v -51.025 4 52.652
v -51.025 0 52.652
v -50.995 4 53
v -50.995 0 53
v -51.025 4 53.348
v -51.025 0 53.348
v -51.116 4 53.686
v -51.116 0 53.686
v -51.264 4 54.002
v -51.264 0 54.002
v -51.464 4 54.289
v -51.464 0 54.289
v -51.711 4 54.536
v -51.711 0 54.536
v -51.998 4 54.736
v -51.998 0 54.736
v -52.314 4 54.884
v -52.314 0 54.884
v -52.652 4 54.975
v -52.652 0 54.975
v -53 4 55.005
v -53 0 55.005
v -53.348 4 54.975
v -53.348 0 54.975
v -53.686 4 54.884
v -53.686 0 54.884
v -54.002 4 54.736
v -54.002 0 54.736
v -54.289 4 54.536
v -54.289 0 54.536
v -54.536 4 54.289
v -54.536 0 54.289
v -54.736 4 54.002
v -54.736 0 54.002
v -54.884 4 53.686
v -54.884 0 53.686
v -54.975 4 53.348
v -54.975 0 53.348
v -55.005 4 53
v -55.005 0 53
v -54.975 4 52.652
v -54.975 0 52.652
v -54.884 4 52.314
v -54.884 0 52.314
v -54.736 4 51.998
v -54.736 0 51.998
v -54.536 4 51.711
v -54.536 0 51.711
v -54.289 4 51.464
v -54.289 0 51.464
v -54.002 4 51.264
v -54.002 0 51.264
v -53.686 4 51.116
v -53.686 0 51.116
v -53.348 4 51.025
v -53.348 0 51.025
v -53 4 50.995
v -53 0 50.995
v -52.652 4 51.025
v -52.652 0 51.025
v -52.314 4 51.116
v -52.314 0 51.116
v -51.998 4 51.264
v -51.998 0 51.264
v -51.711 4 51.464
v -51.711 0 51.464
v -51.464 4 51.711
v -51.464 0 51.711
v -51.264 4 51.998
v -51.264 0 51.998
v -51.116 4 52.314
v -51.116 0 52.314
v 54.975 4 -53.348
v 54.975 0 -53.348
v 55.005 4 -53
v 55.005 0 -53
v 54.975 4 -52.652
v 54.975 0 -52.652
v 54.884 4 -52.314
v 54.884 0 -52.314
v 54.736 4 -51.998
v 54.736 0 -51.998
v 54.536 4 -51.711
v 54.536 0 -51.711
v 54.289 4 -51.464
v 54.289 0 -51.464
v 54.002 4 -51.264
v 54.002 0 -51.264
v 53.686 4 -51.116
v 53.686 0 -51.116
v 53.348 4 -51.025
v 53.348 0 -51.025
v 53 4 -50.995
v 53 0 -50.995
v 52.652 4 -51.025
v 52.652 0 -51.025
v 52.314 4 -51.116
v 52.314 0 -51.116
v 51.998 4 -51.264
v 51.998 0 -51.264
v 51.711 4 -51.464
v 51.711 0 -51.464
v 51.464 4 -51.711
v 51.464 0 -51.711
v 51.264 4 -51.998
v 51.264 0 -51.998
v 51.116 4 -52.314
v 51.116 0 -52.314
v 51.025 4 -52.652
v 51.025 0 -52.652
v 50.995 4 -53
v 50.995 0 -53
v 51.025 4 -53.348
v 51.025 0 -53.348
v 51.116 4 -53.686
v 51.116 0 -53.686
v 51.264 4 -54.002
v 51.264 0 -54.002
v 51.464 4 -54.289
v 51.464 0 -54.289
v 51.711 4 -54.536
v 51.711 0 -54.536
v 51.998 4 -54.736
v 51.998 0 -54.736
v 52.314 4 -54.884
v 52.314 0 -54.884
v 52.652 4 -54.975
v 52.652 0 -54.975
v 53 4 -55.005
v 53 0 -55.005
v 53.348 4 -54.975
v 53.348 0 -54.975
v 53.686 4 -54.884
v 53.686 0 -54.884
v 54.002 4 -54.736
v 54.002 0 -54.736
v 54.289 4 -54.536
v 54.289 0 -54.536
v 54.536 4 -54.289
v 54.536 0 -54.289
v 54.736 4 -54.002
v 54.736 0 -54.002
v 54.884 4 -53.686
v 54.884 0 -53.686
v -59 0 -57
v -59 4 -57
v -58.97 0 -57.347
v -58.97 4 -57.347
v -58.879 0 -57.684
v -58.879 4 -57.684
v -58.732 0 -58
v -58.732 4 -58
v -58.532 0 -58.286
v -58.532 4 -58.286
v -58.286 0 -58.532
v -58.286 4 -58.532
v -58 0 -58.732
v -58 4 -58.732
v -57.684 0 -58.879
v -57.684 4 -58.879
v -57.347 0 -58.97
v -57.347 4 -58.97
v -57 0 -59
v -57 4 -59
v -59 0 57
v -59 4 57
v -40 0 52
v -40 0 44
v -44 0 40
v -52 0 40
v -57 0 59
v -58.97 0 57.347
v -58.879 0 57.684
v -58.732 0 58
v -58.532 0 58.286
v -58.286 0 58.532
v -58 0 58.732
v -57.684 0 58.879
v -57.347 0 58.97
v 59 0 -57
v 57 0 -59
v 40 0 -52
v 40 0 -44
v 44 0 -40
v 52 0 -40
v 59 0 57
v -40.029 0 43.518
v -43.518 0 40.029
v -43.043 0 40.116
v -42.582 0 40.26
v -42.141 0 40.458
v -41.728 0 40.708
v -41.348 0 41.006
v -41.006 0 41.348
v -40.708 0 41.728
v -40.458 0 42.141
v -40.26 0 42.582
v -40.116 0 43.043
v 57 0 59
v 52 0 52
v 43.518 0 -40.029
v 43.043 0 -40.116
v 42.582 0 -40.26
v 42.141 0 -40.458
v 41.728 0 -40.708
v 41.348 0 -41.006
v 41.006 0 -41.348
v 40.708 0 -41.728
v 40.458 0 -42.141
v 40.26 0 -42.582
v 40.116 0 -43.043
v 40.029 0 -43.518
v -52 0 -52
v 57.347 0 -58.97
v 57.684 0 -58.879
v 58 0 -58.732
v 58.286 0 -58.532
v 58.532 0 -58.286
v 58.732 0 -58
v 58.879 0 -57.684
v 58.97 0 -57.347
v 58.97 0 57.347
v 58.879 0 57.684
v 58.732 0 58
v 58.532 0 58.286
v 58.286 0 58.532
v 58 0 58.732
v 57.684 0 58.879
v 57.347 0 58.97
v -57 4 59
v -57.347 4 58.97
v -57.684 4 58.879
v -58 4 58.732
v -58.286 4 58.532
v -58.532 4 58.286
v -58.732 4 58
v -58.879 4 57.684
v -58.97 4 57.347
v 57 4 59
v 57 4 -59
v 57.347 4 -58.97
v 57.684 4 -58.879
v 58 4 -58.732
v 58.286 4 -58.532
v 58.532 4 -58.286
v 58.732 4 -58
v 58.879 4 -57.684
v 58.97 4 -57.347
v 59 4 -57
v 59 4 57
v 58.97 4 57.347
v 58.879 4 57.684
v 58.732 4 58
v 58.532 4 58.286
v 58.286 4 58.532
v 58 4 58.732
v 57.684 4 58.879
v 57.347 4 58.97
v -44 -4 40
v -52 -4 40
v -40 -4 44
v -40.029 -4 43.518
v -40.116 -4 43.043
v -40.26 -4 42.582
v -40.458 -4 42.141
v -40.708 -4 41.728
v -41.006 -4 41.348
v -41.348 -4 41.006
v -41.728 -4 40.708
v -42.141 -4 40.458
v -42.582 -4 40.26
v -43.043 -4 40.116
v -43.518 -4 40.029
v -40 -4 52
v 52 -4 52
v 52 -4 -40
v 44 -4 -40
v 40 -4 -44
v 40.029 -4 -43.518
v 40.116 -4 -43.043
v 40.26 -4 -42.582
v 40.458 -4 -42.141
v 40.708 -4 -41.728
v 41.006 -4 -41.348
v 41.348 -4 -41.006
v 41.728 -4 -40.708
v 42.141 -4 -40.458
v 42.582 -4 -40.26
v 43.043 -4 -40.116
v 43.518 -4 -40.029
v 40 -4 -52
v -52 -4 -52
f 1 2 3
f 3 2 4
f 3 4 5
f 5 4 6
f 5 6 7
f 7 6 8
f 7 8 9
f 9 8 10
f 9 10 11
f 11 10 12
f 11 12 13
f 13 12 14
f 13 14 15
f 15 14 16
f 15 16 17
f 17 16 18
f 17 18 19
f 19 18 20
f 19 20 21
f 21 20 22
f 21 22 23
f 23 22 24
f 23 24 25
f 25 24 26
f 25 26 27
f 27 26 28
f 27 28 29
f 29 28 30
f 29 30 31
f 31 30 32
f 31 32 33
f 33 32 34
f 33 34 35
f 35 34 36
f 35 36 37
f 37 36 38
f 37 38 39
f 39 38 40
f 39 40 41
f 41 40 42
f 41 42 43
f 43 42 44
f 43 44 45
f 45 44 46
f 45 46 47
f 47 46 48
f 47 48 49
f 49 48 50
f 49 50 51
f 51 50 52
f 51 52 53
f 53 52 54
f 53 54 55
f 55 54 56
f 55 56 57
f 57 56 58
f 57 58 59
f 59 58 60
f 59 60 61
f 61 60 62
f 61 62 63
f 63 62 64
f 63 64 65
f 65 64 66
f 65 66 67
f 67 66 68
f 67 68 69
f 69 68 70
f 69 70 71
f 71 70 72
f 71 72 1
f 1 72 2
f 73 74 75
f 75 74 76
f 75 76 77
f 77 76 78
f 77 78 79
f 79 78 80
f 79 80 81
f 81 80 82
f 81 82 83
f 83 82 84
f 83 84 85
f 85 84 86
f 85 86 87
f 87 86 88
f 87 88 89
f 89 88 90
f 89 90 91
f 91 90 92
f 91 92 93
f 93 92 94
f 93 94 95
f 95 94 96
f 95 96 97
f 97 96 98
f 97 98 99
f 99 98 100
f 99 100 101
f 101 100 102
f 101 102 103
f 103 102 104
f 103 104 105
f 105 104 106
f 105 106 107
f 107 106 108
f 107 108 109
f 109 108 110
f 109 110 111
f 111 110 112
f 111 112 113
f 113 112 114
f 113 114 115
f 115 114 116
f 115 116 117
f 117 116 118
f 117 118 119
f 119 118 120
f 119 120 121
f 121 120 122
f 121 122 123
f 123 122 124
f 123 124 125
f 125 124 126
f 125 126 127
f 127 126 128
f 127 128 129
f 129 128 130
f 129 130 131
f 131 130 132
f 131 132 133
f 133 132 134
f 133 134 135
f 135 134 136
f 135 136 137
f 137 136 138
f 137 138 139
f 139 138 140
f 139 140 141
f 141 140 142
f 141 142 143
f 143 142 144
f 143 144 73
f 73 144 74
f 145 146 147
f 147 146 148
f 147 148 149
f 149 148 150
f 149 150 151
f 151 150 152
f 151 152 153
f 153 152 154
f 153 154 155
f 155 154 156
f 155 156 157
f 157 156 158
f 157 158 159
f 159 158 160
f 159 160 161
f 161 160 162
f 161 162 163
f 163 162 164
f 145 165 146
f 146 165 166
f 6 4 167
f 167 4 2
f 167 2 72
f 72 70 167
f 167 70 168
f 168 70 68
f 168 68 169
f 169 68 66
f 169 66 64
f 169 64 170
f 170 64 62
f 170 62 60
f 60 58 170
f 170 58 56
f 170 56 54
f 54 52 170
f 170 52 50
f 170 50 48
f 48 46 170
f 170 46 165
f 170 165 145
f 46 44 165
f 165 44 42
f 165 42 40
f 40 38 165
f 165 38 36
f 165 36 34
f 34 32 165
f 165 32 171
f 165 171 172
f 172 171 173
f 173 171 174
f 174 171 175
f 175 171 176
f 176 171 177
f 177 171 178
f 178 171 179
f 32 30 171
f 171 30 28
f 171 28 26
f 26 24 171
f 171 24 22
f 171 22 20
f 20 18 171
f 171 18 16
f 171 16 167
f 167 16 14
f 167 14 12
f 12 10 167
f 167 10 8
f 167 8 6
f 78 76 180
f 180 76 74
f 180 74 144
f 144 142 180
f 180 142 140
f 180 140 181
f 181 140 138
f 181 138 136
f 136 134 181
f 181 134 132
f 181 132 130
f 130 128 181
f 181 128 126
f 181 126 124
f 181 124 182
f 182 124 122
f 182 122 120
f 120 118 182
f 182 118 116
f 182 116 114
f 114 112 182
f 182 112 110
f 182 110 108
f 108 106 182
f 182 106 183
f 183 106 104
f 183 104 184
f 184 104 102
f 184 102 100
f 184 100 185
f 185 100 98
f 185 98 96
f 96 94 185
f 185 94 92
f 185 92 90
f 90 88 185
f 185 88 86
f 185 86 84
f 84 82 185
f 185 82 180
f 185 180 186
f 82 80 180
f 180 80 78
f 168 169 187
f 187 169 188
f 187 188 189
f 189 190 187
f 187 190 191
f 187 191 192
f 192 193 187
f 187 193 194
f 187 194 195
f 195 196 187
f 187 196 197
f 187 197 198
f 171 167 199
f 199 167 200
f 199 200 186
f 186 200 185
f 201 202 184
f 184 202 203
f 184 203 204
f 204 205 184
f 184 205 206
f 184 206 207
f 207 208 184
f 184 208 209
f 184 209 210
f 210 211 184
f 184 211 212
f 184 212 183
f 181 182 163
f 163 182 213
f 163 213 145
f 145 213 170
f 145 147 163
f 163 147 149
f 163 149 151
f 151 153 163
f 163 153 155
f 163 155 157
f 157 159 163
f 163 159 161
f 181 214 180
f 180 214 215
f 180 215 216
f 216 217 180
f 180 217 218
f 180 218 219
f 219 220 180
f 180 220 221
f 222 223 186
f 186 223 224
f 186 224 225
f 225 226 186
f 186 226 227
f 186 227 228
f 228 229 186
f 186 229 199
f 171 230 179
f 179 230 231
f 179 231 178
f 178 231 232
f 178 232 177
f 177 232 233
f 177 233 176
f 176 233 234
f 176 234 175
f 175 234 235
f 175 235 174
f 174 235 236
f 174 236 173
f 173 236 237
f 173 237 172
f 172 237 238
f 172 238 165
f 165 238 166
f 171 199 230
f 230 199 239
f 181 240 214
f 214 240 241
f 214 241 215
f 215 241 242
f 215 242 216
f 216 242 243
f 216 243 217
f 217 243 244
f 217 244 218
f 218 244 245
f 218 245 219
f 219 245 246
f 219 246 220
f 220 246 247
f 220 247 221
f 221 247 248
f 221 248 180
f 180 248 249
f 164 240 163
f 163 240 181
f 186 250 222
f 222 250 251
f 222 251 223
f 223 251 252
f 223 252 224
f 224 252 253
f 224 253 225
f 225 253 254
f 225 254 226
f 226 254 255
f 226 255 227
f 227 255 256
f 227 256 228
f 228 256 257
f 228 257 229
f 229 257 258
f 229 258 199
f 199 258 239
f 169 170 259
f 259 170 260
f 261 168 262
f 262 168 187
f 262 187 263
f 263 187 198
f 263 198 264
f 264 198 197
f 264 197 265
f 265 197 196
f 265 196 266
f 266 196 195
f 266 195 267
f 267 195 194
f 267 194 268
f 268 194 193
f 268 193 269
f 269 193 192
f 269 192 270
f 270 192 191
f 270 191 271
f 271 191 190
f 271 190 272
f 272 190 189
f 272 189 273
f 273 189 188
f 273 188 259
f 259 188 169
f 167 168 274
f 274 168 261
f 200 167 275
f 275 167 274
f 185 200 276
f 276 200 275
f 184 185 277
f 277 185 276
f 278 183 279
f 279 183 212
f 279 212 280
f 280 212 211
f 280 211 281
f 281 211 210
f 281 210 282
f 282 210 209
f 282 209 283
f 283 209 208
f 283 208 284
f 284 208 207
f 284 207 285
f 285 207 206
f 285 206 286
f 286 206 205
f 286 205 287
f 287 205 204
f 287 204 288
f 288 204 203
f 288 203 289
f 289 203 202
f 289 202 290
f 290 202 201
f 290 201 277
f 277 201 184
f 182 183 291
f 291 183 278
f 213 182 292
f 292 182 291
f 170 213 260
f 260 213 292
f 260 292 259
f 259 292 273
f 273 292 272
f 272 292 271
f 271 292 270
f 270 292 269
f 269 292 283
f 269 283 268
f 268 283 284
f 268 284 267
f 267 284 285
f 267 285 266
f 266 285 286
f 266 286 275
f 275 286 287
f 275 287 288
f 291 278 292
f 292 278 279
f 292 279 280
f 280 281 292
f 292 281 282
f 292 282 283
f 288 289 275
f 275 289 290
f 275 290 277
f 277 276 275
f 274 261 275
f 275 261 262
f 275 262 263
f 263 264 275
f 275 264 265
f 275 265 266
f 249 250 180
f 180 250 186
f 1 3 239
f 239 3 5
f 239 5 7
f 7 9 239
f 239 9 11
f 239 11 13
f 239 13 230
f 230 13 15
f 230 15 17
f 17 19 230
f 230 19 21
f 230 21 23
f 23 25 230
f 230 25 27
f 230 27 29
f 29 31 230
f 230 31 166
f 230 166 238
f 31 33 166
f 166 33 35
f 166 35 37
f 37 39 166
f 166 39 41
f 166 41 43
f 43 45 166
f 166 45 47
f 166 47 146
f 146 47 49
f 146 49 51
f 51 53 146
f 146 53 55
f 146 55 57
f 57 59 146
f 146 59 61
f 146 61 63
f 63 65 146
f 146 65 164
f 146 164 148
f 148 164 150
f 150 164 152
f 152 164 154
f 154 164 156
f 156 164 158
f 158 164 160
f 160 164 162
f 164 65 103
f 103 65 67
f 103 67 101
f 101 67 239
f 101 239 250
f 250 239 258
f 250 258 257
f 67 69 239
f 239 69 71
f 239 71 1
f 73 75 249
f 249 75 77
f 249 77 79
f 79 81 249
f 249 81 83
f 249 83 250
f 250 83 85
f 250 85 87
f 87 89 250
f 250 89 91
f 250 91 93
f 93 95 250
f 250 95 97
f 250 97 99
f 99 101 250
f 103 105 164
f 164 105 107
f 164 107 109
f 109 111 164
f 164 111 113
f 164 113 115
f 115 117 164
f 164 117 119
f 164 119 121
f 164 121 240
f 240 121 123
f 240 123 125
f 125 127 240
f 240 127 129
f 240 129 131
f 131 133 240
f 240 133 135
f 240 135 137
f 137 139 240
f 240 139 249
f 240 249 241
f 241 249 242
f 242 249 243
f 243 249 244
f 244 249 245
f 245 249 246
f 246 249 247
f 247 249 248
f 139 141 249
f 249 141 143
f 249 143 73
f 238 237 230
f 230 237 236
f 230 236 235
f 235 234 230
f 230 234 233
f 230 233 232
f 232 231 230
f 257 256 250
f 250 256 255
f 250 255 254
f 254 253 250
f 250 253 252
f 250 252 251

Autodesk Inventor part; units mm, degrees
ref_plane "YZ Plane" through (0, 0, 0) normal (1, 0, 0) x (0, 1, 0)
ref_plane "XZ Plane" through (0, 0, 0) normal (0, 1, 0) x (-1, 0, 0)
ref_plane "XY Plane" through (0, 0, 0) normal (0, 0, 1) x (1, 0, 0)
sketch "Esboço1" plane through (0, 0, 0) normal (0, 1, 0) x (-1, 0, 0)
  line L0 (-59, 59) -> (59, 59)
  line L1 (59, 59) -> (59, -59)
  line L2 (59, -59) -> (-59, -59)
  line L3 (-59, -59) -> (-59, 59)
  line L4 (-59, 59) -> (59, -59) construction
  line L5 (59, 59) -> (-59, -59) construction
  point P0 (0, 0)
  dimension "d0" = 118
  dimension "d1" = 118
extrude "Extrusão1" add sketch "Esboço1" along normal blind 4
sketch "Esboço2" plane through (0, 0, 0) normal (0, -1, 0) x (1, 0, 0)
  line L0 (-52, -52) -> (40, -52)
  line L1 (52, -40) -> (52, 52)
  line L2 (52, 52) -> (-40, 52)
  line L3 (-52, 40) -> (-52, -52)
  line L4 (-52, -52) -> (52, 52) construction
  line L5 (52, -52) -> (-52, 52) construction
  line L6 (-40, 52) -> (-40, 44)
  line L7 (-44, 40) -> (-52, 40)
  line L8 (40, -52) -> (40, -44)
  line L9 (44, -40) -> (52, -40)
  arc A0 (-44, 40) -> (-40, 44) centre (-44, 44) ccw
  arc A1 (44, -40) -> (40, -44) centre (44, -44) ccw
  point P0 (0, 0)
  dimension "d13" = 4
extrude "Extrusão2" add sketch "Esboço2" along normal blind 4
fillet "Arredondamento1" radius 2 4 edges at (59, 2, 59) (59, 2, -59) (-59, 2, 59) (-59, 2, -59)
sketch "Esboço3" plane through (0, 0, 0) normal (0, -1, 0) x (1, 0, 0)
  circle A0 centre (53, -53) radius 2.005
  circle A1 centre (-53, 53) radius 2.005
  line L0 (57, -59) -> (-57, -59) projected
  line L1 (59, 57) -> (59, -57) projected
  line L2 (-59, -57) -> (-59, 57) projected
  line L3 (-57, 59) -> (57, 59) projected
  point P0 (0, 0)
  dimension "d15" = 4.01
  dimension "d16" = 4.01
  dimension "d17" = 6
  dimension "d18" = 6
  dimension "d19" = 6
  dimension "d20" = 6
extrude "Extrusão3" cut sketch "Esboço3" against normal blind 4
properties part number "tampa caixa"
